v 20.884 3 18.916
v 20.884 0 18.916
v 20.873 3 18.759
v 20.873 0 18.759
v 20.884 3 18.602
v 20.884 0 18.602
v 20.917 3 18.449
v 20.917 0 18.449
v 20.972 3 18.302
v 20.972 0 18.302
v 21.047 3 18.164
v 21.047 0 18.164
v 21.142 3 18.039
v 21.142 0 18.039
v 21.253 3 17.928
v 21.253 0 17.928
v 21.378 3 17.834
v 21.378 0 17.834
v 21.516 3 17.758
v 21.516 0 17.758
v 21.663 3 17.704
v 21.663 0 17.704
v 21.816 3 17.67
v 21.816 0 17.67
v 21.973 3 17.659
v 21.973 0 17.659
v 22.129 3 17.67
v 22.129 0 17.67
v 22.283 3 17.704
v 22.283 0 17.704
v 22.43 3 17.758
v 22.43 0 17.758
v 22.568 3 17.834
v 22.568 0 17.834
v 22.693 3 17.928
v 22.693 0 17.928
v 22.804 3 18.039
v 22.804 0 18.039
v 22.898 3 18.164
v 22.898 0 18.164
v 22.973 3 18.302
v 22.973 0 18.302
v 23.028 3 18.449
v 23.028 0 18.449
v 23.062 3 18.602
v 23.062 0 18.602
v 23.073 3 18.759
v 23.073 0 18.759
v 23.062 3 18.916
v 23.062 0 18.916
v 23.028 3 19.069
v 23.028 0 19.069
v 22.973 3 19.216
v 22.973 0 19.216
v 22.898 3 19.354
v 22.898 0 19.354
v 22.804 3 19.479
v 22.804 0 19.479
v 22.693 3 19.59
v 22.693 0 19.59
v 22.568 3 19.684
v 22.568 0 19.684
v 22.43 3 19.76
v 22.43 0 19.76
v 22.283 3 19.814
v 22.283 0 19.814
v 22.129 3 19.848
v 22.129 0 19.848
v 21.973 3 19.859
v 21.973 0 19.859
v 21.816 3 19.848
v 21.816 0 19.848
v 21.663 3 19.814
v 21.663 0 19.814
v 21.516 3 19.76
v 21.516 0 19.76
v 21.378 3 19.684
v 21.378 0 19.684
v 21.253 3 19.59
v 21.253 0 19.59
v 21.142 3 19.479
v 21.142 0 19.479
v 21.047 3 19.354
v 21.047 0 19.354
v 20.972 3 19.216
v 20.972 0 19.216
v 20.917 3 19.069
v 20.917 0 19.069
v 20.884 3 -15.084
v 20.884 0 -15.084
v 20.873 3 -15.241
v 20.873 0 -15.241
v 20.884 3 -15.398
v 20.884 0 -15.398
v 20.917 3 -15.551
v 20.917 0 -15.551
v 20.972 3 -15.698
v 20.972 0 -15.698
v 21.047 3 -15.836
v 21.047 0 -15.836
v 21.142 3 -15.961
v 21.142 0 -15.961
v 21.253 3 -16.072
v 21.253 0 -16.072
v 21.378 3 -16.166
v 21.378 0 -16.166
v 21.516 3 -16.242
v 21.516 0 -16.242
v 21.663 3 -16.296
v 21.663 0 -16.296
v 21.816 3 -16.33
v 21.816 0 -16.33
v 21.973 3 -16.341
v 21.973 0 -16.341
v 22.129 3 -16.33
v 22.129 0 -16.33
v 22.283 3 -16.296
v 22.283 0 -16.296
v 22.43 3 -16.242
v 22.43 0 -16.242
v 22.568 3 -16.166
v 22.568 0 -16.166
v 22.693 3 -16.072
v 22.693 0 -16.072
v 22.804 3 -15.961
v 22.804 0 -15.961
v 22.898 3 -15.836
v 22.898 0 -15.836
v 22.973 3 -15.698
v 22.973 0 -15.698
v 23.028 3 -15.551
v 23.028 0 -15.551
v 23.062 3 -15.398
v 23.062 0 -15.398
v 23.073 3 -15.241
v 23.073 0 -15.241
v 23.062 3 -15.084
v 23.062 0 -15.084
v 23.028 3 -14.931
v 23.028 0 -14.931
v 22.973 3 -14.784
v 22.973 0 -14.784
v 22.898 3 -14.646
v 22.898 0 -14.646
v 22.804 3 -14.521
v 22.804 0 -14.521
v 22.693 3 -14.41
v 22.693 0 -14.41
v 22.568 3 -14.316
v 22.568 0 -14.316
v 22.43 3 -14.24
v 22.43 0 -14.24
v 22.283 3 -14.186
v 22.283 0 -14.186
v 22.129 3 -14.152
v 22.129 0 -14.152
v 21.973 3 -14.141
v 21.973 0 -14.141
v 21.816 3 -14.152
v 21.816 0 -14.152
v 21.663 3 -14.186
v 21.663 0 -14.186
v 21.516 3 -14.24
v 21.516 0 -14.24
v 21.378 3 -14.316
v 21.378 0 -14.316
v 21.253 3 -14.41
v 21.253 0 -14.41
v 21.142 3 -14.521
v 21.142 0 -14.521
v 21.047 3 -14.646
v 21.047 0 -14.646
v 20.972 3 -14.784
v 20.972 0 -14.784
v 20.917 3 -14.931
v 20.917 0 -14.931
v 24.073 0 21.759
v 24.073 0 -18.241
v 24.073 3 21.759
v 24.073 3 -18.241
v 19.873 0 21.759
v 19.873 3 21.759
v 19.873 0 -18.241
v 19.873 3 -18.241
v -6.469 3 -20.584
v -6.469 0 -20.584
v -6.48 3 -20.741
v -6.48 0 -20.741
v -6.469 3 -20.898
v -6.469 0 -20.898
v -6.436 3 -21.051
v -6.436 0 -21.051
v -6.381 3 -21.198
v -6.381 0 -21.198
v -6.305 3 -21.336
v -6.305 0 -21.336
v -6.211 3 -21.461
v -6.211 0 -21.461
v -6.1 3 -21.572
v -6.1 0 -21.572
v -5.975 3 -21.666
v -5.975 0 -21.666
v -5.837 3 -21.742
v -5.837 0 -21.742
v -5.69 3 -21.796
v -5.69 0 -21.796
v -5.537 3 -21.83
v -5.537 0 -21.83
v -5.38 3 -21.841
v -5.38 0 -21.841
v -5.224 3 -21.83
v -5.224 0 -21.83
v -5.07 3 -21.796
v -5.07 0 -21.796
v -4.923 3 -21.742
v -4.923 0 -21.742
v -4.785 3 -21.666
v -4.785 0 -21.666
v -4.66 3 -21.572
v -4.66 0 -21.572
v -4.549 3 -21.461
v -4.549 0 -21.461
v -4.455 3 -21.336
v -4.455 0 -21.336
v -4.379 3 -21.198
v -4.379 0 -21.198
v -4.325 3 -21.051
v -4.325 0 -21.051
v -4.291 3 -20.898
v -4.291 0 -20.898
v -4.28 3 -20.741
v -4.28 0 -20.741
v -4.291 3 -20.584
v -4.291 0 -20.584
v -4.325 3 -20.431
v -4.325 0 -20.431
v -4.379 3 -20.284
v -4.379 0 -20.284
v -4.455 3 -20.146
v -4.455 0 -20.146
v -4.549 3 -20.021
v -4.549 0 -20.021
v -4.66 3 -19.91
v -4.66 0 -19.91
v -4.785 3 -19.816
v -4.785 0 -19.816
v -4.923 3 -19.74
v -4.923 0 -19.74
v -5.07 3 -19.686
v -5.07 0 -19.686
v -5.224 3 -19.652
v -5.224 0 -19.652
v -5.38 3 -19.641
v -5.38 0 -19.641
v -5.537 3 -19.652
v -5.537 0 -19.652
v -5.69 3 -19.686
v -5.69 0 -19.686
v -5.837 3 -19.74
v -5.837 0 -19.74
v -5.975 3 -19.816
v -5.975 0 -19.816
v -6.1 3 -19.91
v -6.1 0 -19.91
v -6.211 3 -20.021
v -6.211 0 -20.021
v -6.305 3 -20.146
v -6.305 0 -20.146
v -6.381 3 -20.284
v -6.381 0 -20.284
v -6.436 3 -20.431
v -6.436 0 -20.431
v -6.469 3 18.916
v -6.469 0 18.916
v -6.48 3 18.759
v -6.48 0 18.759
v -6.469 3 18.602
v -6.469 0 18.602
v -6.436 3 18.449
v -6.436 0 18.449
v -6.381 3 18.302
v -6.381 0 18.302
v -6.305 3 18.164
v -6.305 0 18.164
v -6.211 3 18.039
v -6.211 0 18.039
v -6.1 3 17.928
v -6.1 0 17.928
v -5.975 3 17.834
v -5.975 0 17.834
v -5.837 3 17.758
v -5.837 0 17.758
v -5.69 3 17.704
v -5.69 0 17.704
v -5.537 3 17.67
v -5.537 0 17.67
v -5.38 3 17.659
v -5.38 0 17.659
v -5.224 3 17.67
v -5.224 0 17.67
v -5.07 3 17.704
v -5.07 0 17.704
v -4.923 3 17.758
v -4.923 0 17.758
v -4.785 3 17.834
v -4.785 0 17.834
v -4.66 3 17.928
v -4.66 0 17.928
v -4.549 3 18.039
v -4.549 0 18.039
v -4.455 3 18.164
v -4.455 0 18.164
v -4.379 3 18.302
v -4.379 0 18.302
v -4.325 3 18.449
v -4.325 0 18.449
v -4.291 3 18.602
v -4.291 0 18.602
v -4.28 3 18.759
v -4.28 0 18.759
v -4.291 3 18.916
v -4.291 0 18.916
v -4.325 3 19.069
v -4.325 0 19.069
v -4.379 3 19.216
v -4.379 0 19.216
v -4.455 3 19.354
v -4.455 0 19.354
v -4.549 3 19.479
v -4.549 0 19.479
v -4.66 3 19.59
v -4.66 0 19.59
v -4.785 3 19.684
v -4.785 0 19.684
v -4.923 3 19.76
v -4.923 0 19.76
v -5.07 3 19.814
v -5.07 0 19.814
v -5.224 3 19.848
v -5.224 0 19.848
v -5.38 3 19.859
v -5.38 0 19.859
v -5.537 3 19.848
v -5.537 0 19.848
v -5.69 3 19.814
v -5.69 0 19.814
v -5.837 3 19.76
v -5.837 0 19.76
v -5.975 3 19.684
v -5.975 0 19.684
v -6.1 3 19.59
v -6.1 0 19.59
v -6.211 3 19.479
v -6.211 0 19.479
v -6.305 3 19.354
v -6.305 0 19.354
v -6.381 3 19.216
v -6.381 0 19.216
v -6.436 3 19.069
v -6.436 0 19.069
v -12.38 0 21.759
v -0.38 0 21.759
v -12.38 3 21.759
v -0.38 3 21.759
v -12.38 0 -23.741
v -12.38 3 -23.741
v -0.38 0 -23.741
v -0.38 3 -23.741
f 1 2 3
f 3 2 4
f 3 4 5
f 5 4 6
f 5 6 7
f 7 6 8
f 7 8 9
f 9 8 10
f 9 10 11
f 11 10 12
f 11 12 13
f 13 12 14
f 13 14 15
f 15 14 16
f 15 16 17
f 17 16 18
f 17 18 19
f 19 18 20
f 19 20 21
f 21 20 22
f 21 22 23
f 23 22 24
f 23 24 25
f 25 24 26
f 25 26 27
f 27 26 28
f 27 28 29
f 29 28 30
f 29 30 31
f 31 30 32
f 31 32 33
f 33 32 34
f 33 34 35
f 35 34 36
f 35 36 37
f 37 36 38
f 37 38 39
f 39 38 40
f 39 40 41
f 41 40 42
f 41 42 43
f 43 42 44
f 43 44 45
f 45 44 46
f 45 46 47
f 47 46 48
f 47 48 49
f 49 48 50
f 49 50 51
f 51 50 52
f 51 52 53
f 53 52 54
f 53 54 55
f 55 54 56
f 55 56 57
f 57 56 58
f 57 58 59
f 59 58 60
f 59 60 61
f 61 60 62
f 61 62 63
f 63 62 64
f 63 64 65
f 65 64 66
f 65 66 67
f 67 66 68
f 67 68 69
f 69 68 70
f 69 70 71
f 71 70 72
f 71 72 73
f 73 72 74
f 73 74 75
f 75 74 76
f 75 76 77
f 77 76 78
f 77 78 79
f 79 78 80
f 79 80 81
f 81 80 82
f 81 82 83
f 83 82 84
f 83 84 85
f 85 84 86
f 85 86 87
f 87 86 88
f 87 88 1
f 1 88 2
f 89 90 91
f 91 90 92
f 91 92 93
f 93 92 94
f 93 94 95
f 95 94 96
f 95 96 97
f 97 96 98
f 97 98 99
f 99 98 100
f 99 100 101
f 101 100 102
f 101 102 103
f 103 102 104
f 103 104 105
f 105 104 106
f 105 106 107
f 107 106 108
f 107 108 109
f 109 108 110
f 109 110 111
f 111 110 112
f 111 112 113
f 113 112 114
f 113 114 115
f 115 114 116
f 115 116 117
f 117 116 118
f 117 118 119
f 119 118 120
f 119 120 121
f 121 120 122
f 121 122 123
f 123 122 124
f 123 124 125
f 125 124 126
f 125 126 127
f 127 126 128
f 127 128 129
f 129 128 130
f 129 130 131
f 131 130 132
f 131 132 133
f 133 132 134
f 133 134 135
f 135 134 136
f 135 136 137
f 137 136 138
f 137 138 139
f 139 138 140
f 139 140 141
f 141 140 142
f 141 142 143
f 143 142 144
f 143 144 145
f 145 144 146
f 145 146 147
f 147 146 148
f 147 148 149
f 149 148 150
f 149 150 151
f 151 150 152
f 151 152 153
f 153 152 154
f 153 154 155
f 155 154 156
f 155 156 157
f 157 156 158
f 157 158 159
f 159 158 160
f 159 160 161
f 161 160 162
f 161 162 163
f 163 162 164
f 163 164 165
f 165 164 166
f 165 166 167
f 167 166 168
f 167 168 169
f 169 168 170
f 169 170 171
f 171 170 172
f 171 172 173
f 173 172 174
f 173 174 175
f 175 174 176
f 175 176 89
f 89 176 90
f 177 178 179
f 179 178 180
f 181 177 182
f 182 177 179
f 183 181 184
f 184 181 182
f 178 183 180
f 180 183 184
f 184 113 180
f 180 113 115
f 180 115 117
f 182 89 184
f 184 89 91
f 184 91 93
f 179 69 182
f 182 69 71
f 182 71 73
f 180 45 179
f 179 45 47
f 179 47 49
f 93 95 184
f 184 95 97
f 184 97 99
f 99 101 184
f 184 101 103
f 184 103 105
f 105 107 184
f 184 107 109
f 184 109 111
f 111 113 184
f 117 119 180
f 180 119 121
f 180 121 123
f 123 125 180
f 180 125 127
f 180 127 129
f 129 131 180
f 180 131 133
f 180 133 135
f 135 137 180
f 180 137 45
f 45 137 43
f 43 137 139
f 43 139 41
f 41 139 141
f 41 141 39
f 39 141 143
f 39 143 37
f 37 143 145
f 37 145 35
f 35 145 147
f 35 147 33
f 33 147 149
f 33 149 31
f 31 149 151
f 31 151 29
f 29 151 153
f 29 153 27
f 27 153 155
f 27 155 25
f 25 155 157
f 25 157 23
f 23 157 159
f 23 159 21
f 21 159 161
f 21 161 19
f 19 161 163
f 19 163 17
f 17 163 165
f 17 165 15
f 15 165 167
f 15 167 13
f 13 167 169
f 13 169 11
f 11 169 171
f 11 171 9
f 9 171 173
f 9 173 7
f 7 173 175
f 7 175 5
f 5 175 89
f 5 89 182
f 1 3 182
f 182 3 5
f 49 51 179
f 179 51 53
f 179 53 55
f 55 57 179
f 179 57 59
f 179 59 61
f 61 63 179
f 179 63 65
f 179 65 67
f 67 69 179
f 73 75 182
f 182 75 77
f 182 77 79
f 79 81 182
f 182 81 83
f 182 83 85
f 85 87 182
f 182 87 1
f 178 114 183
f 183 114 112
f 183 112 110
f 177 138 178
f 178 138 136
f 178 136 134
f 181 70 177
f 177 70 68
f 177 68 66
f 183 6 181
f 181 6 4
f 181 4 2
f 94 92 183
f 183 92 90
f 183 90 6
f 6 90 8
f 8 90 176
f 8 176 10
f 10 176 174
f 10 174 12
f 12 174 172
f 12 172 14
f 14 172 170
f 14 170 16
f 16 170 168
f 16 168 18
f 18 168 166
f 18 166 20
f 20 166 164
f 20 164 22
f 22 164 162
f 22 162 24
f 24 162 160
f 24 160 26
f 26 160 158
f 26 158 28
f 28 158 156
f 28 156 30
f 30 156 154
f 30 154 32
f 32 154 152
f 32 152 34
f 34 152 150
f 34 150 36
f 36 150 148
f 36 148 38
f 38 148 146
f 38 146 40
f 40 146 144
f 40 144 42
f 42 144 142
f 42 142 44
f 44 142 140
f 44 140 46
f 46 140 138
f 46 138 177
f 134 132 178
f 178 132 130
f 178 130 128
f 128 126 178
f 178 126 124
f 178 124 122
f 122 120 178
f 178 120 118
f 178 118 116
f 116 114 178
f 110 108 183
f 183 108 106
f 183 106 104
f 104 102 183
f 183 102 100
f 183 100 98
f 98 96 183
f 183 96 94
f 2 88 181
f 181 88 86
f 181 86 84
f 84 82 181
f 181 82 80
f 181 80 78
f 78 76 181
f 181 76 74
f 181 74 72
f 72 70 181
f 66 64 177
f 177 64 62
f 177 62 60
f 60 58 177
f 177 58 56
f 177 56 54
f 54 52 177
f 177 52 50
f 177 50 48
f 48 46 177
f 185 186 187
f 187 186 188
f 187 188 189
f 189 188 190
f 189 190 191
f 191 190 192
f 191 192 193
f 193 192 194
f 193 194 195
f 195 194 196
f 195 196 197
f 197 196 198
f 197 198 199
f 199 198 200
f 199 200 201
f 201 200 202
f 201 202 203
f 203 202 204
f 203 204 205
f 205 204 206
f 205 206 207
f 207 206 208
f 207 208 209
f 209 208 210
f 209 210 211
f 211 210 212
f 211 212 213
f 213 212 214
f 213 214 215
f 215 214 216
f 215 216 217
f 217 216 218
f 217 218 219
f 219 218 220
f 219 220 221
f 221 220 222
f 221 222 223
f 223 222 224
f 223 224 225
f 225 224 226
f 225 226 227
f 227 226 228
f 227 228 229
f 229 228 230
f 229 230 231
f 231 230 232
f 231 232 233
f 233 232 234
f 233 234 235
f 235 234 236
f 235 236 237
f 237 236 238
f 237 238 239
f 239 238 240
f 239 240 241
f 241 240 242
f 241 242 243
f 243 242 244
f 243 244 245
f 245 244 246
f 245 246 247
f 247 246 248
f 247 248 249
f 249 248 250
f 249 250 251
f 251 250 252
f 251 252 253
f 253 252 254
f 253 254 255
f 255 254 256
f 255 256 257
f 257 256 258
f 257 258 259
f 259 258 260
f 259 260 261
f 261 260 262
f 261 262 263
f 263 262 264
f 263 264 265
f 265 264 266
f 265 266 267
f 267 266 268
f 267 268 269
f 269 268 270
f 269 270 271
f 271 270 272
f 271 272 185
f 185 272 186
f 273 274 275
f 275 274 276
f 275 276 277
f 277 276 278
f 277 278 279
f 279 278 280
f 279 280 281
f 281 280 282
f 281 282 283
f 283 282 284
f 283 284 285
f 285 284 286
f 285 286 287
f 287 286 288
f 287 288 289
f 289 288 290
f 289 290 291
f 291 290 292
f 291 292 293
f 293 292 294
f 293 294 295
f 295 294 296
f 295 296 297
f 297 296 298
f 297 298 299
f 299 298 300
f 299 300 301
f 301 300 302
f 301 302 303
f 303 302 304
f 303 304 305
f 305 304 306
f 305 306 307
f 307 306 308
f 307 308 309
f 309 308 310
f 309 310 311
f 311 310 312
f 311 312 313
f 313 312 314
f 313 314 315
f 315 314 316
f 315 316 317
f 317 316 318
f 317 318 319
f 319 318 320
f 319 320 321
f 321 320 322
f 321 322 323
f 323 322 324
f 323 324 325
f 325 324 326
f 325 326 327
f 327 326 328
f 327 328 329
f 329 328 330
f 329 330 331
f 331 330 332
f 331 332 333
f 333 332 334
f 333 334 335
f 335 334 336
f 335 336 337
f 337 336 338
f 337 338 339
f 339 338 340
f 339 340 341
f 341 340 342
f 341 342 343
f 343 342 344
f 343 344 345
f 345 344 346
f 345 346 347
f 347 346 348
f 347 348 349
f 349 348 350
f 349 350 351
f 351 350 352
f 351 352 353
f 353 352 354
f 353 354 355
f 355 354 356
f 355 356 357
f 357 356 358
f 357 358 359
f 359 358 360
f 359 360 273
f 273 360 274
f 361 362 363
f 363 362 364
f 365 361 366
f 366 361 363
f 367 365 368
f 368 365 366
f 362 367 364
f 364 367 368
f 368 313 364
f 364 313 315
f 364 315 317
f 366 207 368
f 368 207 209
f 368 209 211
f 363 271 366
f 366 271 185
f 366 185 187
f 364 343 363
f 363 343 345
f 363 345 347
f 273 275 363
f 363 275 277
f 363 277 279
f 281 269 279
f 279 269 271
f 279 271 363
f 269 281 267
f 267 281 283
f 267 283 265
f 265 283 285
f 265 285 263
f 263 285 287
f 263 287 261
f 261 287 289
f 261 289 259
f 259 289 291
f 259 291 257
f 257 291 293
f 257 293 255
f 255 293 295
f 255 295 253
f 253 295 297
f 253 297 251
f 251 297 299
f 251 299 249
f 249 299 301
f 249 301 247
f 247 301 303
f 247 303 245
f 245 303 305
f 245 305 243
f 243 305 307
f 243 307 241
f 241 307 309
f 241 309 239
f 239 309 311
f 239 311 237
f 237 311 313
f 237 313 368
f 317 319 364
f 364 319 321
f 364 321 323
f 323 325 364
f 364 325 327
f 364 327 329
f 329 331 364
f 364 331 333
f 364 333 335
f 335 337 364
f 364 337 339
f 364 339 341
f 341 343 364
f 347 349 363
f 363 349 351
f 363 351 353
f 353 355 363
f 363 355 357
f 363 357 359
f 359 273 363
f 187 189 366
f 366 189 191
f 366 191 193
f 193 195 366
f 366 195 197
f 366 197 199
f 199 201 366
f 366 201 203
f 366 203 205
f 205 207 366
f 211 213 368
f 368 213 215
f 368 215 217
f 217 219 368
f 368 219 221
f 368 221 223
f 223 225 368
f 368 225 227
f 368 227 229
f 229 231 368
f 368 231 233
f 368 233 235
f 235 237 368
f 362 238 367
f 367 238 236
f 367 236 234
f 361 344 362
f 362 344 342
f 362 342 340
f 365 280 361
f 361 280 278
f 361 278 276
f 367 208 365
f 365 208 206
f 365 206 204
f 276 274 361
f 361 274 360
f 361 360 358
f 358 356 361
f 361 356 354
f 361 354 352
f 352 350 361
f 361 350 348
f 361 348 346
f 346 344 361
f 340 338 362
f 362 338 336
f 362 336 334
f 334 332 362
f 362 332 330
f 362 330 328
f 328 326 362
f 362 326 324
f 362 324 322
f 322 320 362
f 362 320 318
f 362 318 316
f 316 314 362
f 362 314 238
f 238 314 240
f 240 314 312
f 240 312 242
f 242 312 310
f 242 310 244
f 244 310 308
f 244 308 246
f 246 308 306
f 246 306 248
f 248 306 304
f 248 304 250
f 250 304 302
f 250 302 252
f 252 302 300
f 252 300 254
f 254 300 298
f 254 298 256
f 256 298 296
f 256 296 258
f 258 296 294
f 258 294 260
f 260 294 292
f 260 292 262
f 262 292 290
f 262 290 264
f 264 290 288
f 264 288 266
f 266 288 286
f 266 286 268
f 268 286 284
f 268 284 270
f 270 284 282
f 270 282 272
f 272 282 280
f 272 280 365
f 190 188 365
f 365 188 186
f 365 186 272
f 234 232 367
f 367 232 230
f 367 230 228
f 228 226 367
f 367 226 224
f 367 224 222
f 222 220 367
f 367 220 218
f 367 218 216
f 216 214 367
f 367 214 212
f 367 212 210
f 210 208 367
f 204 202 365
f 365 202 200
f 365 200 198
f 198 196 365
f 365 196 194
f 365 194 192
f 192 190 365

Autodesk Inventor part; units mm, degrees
ref_plane "YZ Plane" through (0, 0, 0) normal (1, 0, 0) x (0, 1, 0)
ref_plane "XZ Plane" through (0, 0, 0) normal (0, 1, 0) x (-1, 0, 0)
ref_plane "XY Plane" through (0, 0, 0) normal (0, 0, 1) x (1, 0, 0)
sketch "Эскиз1" plane through (0, 0, 0) normal (0, 1, 0) x (-1, 0, 0)
  line L0 (12.3801, 21.759) -> (0.3801, 21.759)
  line L1 (0.3801, 21.759) -> (0.3801, -23.741)
  line L2 (0.3801, -23.741) -> (12.3801, -23.741)
  line L3 (12.3801, -23.741) -> (12.3801, 21.759)
  line L4 (-24.0729, 21.759) -> (-19.8729, 21.759)
  line L5 (-19.8729, 21.759) -> (-19.8729, -18.241)
  line L6 (-19.8729, -18.241) -> (-24.0729, -18.241)
  line L7 (-24.0729, -18.241) -> (-24.0729, 21.759)
  line L8 (5.3801, 21.759) -> (5.3801, 18.759) construction
  line L9 (5.3801, -23.741) -> (5.3801, -20.741) construction
  line L10 (-21.9729, -18.241) -> (-21.9729, -15.241) construction
  line L11 (-21.9729, 21.759) -> (-21.9729, 18.759) construction
  circle A0 centre (-21.9729, 18.759) radius 1.1
  circle A1 centre (-21.9729, -15.241) radius 1.1
  circle A2 centre (5.3801, 18.759) radius 1.1
  circle A3 centre (5.3801, -20.741) radius 1.1
  point P0 (0, 0)
  dimension "d0" = 45.5
  dimension "d1" = 12
  dimension "d20" = 4.2
  dimension "d21" = 40
  dimension "d22" = 3
  dimension "d23" = 3
  dimension "d24" = 3
  dimension "d25" = 3
  dimension "d26" = 2.2
  dimension "d27" = 2.2
  dimension "d28" = 2.2
  dimension "d29" = 2.2
  dimension "d30" = 5
  dimension "d31" = 5
extrude "Выдавливание1" add sketch "Эскиз1" along normal blind 3
properties part number "1111111"
